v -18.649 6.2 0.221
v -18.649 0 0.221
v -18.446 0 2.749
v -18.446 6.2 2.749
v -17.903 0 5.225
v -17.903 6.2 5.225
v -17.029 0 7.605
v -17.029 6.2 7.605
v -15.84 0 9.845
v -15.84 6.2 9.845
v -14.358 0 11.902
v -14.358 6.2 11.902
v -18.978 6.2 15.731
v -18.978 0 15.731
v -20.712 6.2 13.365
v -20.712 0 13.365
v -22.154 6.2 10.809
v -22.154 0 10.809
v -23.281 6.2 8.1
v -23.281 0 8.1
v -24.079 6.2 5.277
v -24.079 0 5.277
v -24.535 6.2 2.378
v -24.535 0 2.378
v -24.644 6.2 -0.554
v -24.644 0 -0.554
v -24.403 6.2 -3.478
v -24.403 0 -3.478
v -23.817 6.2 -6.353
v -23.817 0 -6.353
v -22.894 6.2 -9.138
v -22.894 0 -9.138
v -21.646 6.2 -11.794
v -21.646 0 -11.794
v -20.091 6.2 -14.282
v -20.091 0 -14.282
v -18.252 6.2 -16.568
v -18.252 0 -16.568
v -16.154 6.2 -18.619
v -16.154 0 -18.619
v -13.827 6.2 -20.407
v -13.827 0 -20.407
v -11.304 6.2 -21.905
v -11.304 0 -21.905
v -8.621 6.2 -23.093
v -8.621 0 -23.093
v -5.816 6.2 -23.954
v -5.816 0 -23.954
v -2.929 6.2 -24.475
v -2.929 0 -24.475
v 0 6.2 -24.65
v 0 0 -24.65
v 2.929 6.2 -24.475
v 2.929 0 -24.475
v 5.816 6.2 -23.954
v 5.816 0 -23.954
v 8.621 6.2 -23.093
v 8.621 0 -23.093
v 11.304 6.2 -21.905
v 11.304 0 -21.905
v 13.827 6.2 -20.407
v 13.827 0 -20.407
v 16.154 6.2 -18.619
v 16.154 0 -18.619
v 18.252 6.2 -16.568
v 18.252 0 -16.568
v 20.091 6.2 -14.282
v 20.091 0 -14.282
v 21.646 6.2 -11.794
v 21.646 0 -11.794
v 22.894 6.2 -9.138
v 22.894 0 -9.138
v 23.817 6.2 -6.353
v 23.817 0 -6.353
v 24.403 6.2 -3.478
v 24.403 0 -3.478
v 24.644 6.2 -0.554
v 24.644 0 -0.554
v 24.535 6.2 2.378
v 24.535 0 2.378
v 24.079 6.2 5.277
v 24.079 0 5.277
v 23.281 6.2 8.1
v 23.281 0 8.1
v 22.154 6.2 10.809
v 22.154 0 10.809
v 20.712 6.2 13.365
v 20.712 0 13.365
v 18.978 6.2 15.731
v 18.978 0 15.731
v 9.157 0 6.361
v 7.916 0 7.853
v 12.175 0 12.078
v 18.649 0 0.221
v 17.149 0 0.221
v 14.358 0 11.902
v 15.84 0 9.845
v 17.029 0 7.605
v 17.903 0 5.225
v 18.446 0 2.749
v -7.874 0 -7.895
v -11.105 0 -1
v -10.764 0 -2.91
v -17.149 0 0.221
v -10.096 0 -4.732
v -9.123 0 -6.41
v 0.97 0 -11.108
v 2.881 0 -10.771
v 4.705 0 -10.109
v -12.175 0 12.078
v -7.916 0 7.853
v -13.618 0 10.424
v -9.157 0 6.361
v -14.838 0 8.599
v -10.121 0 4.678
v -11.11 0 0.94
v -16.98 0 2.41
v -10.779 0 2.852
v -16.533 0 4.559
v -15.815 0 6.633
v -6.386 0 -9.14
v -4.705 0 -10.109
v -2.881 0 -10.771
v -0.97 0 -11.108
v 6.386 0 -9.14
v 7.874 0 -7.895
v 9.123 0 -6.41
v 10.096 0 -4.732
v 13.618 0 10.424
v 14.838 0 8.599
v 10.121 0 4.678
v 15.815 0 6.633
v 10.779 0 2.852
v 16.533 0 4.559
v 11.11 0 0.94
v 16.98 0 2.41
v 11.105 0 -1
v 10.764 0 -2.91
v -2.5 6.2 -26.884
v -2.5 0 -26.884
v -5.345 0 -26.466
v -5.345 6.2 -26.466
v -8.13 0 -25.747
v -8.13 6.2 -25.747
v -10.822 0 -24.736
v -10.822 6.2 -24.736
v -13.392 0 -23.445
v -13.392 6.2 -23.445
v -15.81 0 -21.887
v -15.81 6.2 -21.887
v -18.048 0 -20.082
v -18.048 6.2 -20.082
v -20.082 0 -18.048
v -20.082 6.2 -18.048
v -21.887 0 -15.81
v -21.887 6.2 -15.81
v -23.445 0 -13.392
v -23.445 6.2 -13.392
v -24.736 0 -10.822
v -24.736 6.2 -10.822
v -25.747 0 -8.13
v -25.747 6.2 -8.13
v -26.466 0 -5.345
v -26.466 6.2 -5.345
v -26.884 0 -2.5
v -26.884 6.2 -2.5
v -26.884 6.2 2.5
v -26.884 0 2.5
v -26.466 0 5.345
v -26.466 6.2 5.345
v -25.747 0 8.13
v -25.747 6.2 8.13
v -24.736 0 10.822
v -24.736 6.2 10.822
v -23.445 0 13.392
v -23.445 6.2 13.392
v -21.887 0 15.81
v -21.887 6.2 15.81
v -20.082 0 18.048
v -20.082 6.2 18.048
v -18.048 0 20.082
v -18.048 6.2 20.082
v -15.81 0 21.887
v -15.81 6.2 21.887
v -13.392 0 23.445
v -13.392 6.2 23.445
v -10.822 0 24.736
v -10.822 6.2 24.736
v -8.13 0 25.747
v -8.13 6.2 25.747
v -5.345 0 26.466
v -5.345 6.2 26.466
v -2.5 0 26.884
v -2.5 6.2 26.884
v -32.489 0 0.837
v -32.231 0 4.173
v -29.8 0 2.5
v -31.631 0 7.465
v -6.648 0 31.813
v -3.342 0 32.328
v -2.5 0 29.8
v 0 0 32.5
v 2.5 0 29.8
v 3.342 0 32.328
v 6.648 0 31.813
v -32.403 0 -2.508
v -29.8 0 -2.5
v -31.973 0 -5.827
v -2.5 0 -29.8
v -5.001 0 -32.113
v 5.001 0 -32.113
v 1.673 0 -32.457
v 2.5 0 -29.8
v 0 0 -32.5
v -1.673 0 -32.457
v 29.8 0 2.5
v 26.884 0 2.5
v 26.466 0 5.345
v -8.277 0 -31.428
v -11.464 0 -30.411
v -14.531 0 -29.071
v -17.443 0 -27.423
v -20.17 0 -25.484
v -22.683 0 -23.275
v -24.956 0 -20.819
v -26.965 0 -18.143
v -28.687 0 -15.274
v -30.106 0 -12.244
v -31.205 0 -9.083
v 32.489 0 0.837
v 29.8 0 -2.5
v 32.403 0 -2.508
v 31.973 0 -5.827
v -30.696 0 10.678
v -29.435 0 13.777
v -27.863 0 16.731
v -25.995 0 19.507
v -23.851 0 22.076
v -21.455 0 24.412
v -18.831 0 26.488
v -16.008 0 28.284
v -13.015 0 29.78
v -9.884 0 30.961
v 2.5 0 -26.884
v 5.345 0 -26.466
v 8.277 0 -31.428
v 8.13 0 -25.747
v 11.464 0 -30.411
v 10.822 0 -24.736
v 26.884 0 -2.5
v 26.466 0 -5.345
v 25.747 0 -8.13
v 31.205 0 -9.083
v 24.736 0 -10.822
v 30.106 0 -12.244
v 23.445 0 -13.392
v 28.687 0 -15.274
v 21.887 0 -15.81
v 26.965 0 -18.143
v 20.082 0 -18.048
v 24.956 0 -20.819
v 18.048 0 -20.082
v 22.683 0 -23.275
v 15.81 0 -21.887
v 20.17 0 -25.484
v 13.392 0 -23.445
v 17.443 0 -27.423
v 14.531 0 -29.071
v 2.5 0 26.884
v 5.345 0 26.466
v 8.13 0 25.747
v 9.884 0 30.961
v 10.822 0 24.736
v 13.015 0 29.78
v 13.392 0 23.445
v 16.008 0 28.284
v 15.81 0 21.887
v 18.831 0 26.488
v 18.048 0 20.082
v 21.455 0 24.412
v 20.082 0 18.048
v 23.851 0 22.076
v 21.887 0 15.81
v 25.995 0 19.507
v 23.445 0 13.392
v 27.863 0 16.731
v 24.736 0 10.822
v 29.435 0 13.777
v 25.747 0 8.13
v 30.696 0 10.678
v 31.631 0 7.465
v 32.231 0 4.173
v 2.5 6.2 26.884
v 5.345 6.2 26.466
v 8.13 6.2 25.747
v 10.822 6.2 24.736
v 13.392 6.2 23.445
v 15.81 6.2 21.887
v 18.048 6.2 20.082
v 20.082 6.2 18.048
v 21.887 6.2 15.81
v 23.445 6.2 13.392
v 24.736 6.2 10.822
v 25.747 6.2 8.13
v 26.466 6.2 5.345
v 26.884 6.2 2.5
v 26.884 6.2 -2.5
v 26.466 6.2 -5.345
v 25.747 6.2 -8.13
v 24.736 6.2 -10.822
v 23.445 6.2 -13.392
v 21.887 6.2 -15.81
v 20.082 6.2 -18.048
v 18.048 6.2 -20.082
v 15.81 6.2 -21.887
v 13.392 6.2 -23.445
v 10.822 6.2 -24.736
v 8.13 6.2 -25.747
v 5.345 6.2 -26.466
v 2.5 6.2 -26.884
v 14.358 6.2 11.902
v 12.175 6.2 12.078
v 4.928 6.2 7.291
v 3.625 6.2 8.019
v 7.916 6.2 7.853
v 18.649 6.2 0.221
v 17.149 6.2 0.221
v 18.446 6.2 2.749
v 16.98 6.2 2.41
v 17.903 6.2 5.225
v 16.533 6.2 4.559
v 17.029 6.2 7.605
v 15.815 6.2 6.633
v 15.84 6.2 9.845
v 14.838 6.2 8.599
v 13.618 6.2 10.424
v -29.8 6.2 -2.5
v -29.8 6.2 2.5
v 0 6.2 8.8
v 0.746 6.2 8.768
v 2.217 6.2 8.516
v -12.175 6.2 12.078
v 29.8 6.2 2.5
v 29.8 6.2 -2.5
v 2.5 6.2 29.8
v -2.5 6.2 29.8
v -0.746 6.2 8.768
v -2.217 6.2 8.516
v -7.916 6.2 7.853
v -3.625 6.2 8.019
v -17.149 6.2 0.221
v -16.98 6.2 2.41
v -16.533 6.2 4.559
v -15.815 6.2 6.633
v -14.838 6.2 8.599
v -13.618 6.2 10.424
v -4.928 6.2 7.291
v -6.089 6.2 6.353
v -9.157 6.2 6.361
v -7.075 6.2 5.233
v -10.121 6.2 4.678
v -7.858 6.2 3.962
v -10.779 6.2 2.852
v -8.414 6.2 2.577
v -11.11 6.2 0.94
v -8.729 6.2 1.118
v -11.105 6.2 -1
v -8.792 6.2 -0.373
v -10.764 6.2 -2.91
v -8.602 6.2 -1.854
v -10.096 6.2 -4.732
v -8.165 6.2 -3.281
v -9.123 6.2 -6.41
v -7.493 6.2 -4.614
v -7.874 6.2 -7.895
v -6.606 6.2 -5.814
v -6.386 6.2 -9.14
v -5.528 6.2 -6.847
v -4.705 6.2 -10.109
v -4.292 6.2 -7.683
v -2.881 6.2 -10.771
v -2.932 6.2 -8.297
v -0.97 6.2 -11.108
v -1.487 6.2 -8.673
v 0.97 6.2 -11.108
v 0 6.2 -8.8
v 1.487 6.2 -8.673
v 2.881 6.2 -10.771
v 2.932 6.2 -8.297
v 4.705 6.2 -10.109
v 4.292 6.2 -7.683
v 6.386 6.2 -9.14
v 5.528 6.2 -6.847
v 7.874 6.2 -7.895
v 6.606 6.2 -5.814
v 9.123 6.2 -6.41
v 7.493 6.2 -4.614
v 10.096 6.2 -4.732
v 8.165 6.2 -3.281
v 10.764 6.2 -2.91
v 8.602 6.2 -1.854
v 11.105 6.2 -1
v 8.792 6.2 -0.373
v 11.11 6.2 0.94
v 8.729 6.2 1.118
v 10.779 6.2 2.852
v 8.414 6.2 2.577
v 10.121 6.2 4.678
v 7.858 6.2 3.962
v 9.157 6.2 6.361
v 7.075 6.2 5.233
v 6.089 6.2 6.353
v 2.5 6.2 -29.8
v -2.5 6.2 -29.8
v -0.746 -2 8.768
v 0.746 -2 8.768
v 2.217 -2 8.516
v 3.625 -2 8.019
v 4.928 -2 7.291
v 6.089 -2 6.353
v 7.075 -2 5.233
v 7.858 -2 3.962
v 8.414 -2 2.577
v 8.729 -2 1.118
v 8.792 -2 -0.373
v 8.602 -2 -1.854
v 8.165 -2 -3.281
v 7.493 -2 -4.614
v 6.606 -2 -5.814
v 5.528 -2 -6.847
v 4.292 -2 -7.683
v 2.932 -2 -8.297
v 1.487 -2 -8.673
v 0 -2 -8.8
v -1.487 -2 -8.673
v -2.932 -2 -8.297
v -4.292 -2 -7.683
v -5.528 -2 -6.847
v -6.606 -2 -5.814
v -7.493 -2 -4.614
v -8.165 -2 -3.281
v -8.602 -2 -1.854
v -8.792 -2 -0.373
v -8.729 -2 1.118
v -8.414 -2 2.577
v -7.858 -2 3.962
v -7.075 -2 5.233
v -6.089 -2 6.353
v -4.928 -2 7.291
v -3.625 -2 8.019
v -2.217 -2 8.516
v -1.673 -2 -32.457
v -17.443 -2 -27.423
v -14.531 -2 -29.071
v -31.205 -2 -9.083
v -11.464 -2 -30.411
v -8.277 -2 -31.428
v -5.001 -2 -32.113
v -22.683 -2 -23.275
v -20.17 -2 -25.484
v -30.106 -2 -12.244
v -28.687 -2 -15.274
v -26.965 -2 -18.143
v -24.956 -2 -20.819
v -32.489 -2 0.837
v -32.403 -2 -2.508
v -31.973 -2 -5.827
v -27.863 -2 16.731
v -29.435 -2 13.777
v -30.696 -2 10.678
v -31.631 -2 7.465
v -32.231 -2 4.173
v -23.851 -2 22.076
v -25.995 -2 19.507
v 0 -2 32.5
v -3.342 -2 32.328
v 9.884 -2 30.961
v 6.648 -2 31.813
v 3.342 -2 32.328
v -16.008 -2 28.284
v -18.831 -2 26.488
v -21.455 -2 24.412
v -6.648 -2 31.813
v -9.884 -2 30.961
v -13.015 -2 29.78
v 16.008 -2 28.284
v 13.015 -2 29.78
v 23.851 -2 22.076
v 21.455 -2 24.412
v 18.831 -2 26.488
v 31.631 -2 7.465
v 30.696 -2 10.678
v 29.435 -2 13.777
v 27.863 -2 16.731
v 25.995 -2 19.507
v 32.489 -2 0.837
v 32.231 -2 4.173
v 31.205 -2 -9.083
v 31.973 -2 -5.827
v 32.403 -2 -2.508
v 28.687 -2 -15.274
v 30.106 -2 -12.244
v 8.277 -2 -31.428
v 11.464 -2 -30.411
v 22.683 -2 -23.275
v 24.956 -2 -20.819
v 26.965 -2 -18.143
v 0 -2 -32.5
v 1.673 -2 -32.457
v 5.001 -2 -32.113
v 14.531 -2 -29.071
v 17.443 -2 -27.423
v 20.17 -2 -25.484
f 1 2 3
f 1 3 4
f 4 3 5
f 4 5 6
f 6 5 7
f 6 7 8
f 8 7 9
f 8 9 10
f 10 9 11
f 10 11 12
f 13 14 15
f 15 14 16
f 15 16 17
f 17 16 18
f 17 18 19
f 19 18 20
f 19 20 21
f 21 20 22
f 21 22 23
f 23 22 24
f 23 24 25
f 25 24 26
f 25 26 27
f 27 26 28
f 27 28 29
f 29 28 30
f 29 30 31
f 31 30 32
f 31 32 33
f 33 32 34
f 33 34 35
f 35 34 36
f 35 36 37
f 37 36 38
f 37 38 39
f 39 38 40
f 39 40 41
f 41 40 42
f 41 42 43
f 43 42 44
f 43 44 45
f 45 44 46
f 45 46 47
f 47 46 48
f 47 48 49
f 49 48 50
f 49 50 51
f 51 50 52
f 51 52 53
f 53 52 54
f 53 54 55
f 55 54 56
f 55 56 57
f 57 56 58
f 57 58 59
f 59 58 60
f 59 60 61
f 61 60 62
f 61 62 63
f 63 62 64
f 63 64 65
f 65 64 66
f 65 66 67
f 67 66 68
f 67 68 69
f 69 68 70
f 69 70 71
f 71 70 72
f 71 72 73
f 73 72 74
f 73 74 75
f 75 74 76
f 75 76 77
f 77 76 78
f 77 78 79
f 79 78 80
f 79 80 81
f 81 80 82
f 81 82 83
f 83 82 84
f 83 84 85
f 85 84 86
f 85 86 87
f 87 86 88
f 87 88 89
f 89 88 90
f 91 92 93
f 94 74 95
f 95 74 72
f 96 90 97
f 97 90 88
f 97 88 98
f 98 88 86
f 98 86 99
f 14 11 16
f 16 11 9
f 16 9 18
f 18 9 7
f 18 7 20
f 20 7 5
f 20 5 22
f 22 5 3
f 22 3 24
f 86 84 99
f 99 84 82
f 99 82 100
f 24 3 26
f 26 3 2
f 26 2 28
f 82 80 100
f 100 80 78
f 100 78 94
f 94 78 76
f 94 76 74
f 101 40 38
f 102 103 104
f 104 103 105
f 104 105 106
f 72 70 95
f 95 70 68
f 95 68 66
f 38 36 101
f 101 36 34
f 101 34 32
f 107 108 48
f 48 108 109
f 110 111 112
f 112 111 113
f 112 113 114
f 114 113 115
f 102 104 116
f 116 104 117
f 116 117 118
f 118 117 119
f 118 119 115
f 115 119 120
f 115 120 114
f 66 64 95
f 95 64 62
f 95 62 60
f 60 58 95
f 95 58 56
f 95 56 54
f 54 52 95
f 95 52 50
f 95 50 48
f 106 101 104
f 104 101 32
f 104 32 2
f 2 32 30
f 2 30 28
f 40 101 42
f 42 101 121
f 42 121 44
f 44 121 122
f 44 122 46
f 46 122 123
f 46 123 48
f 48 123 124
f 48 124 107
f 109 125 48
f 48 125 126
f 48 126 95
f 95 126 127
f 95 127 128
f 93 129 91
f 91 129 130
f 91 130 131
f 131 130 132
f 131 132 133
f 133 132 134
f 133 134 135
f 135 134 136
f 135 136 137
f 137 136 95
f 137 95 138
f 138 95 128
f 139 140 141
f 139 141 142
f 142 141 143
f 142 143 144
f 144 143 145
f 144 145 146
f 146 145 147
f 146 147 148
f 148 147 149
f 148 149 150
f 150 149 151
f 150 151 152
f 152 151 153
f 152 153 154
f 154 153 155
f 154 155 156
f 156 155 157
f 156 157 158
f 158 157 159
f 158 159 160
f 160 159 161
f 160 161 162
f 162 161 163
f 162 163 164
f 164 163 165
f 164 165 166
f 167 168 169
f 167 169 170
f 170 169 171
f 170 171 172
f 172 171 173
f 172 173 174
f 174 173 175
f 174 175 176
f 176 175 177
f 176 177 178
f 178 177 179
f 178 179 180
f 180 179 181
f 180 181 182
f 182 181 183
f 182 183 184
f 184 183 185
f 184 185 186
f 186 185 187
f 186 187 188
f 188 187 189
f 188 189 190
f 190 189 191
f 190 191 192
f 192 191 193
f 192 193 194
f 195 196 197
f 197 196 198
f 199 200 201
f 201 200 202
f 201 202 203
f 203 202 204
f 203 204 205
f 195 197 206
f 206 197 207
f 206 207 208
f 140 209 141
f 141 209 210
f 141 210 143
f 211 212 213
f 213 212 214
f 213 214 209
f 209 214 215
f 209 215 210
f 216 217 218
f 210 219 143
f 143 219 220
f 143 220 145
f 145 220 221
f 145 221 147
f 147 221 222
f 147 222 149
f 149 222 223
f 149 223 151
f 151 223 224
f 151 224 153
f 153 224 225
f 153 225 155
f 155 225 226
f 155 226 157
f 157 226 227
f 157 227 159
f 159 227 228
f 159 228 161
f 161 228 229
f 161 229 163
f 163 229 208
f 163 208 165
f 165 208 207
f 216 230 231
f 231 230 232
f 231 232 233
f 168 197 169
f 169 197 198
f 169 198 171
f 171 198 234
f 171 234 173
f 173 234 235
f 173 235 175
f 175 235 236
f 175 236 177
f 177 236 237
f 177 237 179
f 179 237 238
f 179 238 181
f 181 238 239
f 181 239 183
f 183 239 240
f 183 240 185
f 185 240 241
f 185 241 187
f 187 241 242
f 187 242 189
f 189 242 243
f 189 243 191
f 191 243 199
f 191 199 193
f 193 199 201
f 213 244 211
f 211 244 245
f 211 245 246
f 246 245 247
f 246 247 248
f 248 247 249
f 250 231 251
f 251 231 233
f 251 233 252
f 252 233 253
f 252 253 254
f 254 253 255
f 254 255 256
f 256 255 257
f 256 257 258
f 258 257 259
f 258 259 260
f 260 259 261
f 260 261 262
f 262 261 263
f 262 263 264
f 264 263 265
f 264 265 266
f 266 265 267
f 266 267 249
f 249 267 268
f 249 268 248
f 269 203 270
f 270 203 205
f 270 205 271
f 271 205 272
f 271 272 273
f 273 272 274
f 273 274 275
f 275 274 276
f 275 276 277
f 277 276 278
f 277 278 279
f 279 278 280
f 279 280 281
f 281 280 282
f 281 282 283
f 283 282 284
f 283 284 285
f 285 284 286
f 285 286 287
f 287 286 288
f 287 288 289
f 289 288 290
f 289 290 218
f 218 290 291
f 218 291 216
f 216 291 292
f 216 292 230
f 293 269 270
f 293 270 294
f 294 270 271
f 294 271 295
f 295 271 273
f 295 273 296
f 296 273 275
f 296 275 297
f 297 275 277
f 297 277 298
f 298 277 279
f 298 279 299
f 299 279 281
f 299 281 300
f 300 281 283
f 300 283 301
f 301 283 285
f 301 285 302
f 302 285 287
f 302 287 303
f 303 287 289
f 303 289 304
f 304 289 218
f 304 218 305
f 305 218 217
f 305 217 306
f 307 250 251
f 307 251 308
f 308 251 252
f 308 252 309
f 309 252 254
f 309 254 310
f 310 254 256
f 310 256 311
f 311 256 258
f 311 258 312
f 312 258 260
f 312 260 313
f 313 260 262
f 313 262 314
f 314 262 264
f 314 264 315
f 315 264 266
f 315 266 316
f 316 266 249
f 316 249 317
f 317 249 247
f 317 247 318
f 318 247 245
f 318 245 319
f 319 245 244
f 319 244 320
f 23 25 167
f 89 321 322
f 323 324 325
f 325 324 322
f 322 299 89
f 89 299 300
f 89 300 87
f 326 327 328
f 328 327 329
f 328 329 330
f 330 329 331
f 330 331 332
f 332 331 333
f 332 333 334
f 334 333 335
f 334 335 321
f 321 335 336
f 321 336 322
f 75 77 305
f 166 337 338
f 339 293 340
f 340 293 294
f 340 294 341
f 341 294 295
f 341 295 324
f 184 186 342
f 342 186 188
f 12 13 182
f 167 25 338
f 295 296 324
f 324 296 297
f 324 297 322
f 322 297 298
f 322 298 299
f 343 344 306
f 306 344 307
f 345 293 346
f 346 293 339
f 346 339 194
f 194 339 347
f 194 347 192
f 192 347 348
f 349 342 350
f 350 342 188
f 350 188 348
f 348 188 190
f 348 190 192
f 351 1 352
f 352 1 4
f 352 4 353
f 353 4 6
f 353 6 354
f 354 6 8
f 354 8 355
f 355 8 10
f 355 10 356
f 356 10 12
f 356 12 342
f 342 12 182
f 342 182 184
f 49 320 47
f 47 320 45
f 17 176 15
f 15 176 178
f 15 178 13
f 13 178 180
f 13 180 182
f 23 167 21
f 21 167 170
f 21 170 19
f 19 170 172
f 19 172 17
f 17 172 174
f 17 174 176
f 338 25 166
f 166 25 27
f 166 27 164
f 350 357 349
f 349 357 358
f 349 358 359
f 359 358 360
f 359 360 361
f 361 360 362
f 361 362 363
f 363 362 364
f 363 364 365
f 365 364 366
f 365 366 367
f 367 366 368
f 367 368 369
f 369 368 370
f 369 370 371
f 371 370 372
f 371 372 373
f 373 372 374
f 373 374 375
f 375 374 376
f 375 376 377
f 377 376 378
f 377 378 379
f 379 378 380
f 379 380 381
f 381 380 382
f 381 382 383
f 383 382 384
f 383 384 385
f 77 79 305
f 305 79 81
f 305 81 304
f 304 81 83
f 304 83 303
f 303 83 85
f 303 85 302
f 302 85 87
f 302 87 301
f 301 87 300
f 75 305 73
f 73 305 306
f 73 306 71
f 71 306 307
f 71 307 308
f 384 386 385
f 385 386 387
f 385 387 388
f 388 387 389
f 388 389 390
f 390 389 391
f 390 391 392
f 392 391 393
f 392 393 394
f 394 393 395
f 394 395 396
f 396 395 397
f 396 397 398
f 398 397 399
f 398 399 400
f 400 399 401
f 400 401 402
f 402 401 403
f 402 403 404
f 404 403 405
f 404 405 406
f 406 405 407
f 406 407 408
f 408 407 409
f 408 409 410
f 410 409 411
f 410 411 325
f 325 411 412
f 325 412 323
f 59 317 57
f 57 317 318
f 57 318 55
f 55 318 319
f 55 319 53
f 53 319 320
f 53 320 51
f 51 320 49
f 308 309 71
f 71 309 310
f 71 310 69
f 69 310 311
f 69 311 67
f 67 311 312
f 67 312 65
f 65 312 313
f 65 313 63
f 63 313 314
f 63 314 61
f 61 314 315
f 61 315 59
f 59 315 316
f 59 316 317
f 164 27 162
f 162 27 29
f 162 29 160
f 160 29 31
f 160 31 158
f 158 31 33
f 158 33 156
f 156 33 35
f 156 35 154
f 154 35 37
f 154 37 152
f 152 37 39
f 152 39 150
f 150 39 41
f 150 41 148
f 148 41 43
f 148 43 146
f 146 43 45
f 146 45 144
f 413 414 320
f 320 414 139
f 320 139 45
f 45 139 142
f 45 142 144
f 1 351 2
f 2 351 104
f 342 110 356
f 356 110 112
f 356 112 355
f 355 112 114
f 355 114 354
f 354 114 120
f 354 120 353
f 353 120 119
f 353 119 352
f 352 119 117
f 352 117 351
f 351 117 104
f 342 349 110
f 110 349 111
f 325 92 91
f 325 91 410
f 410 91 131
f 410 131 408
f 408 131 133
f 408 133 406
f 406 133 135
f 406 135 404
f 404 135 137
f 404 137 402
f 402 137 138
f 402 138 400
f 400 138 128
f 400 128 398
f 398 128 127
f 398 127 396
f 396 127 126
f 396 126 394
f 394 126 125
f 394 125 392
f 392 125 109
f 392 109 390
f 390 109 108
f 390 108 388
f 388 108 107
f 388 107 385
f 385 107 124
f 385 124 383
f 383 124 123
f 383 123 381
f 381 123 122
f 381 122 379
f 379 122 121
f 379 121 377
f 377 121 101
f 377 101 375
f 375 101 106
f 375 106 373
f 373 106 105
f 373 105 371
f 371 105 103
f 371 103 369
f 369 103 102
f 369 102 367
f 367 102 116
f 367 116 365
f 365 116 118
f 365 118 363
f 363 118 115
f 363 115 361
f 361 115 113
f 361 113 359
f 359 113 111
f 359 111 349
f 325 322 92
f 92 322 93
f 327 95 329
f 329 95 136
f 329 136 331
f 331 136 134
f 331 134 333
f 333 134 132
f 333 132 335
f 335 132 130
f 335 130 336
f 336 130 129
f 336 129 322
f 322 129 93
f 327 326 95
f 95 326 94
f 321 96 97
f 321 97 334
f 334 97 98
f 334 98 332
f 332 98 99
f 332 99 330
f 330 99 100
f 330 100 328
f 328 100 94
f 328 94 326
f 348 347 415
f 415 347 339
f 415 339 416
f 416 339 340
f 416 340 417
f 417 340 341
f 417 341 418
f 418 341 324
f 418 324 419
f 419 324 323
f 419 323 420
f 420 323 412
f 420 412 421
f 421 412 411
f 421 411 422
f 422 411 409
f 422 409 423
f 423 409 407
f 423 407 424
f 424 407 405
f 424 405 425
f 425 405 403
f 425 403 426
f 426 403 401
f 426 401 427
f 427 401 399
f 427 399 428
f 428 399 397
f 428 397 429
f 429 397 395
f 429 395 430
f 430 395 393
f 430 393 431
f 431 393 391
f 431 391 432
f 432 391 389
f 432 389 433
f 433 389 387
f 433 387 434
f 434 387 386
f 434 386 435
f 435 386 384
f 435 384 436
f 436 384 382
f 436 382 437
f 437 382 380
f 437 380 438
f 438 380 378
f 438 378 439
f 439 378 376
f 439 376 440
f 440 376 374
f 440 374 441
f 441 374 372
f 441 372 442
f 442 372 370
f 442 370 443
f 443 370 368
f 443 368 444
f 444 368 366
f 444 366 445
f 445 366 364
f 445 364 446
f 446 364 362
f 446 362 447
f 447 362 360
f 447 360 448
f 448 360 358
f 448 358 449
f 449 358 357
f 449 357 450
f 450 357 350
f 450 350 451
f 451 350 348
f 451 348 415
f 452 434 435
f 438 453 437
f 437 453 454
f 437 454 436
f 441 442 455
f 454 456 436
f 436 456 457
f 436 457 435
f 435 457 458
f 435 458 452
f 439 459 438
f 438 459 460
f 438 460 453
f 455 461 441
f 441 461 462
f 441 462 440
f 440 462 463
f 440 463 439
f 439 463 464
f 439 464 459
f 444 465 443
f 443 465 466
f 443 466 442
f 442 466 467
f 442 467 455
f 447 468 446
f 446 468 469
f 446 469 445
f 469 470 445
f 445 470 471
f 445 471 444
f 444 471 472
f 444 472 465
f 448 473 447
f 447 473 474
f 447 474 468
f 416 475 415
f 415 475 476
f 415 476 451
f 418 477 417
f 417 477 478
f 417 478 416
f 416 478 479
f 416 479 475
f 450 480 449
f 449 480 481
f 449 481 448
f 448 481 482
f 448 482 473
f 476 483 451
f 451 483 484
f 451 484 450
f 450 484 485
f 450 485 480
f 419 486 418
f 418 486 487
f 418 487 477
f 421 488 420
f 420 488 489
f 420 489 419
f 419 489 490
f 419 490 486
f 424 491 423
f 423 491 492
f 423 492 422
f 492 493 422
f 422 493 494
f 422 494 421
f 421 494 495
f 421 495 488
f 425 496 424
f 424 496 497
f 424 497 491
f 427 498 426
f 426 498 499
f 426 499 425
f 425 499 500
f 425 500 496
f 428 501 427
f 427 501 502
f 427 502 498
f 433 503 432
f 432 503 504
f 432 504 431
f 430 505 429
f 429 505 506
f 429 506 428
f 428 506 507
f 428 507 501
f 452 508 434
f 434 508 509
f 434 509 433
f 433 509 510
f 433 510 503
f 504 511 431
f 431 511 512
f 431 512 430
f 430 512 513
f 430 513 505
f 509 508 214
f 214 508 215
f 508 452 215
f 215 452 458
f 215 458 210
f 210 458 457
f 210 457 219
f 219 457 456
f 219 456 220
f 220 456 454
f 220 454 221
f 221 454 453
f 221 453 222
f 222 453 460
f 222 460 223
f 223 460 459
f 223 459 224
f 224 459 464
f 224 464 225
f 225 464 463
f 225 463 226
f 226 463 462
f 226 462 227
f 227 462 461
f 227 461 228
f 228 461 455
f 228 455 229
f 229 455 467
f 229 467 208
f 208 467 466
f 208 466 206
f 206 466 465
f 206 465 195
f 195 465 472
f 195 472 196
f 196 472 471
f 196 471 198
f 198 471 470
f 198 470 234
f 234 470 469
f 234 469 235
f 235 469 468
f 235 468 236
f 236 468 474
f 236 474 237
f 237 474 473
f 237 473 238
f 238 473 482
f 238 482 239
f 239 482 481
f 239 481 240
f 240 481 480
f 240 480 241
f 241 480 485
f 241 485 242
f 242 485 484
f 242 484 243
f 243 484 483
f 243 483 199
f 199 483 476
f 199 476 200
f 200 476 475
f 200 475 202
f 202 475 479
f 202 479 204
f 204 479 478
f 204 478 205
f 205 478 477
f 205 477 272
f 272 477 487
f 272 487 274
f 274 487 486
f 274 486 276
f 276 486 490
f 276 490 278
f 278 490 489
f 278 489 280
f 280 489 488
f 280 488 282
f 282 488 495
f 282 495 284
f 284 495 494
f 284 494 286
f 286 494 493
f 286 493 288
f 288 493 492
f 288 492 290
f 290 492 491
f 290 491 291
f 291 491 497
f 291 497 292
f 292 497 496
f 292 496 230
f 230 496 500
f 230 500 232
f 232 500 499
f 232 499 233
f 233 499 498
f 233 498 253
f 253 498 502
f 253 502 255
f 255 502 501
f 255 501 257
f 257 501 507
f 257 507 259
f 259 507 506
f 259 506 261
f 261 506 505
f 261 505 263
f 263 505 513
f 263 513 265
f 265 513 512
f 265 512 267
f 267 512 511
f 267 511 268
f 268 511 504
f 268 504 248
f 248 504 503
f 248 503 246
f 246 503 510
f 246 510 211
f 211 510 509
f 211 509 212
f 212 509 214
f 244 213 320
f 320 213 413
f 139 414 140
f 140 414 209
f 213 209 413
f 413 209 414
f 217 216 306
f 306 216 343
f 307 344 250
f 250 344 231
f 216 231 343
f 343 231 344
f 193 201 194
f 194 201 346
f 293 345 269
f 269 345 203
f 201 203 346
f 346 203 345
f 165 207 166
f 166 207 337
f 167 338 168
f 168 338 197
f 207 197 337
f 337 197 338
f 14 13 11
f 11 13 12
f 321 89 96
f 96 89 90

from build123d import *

# Parameters (mm, degrees)
SKETCH1_R           = 27
SKETCH1_R_2         = 8.8
BOSS_EXTRUDE1_DEPTH = 6.2
BOSS_EXTRUDE2_START = 2
SKETCH2_R           = 32.5
SKETCH2_R_2         = 8.8
BOSS_EXTRUDE2_DEPTH = 2
SKETCH3_W           = 5
SKETCH3_H           = 4.39677325
SKETCH3_W_2         = 4.39677325
SKETCH3_H_2         = 5
BOSS_EXTRUDE3_DEPTH = 6.2
BOSS_EXTRUDE4_DEPTH = 6.2


with BuildPart() as part:
    # Sketch1 → Boss-Extrude1 (new body)
    with BuildSketch(Plane(origin=(0, 0, 0), x_dir=(1, 0, 0), z_dir=(0, 1, 0))):
        with Locations(Location((0, 0, 0), (0, 0, 90))):
            Circle(SKETCH1_R)
        with Locations(Location((0, 0, 0), (0, 0, 90))):
            Circle(SKETCH1_R_2, mode=Mode.SUBTRACT)
        with BuildLine():
            Line((-17.5, -17.360083525), (-13.240365112, -13.134505385))
            ThreePointArc((-13.240365112, -13.134505385), (-17.20219229, -7.204656856), (-18.648686612, -0.221331548))
            Line((-18.648686612, -0.221331548), (-17.148571199, -0.221372599))
            ThreePointArc((-17.148571199, -0.221372599), (-15.815189186, -6.633422269), (-12.175456389, -12.07811085))
            Line((-12.175456389, -12.07811085), (-7.915821501, -7.85253271))
            ThreePointArc((-7.915821501, -7.85253271), (0, 11.15), (7.915821501, -7.85253271))
            Line((7.915821501, -7.85253271), (12.175456389, -12.07811085))
            ThreePointArc((12.175456389, -12.07811085), (15.815189186, -6.633422269), (17.148571199, -0.221372599))
            Line((17.148571199, -0.221372599), (18.648686612, -0.221331548))
            ThreePointArc((18.648686612, -0.221331548), (17.20219229, -7.204656856), (13.240365112, -13.134505385))
            Line((13.240365112, -13.134505385), (17.5, -17.360083525))
            ThreePointArc((17.5, -17.360083525), (0, 24.65), (-17.5, -17.360083525))
        make_face(mode=Mode.SUBTRACT)
    extrude(amount=BOSS_EXTRUDE1_DEPTH)

    # Sketch2 → Boss-Extrude2 (add)
    with BuildSketch(Plane.XZ.offset(BOSS_EXTRUDE2_START)):
        with Locations(Location((0, 0, 0), (0, 0, 270))):
            Circle(SKETCH2_R)
        with Locations(Location((0, 0, 0), (0, 0, 270))):
            Circle(SKETCH2_R_2, mode=Mode.SUBTRACT)
    extrude(amount=-BOSS_EXTRUDE2_DEPTH)

    # Sketch3 → Boss-Extrude3 (add)
    with BuildSketch(Plane(origin=(0, 0, 0), x_dir=(1, 0, 0), z_dir=(0, 1, 0))):
        with Locations((0, 27.601613375)):
            Rectangle(SKETCH3_W, SKETCH3_H)
        with Locations((27.601613375, 0)):
            Rectangle(SKETCH3_W_2, SKETCH3_H_2)
        with Locations((0, -27.601613375)):
            Rectangle(SKETCH3_W, SKETCH3_H)
        with Locations((-27.601613375, 0)):
            Rectangle(SKETCH3_W_2, SKETCH3_H_2)
    extrude(amount=BOSS_EXTRUDE3_DEPTH)

    # Sketch5 → Boss-Extrude4 (add)
    with BuildSketch(Plane(origin=(0, 0, 0), x_dir=(1, 0, 0), z_dir=(0, 1, 0))):
        with BuildLine():
            Line((-18.97760125, -15.731279376), (-13.203483223, -10.944886057))
            ThreePointArc((-13.203483223, -10.944886057), (-12.702113744, -11.522968647), (-12.175456389, -12.07811085))
            Line((-12.175456389, -12.07811085), (-17.733930638, -18.204578298))
            Line((-17.733930638, -18.204578298), (-18.97760125, -15.731279376))
        make_face()
    boss_extrude4 = extrude(amount=BOSS_EXTRUDE4_DEPTH)

    # Mirror2: Boss-Extrude4 across plane
    add(boss_extrude4.mirror(Plane(origin=(0, 0, 0), x_dir=(0, 0, 1), z_dir=(1, 0, 0))))


solid = part.part
